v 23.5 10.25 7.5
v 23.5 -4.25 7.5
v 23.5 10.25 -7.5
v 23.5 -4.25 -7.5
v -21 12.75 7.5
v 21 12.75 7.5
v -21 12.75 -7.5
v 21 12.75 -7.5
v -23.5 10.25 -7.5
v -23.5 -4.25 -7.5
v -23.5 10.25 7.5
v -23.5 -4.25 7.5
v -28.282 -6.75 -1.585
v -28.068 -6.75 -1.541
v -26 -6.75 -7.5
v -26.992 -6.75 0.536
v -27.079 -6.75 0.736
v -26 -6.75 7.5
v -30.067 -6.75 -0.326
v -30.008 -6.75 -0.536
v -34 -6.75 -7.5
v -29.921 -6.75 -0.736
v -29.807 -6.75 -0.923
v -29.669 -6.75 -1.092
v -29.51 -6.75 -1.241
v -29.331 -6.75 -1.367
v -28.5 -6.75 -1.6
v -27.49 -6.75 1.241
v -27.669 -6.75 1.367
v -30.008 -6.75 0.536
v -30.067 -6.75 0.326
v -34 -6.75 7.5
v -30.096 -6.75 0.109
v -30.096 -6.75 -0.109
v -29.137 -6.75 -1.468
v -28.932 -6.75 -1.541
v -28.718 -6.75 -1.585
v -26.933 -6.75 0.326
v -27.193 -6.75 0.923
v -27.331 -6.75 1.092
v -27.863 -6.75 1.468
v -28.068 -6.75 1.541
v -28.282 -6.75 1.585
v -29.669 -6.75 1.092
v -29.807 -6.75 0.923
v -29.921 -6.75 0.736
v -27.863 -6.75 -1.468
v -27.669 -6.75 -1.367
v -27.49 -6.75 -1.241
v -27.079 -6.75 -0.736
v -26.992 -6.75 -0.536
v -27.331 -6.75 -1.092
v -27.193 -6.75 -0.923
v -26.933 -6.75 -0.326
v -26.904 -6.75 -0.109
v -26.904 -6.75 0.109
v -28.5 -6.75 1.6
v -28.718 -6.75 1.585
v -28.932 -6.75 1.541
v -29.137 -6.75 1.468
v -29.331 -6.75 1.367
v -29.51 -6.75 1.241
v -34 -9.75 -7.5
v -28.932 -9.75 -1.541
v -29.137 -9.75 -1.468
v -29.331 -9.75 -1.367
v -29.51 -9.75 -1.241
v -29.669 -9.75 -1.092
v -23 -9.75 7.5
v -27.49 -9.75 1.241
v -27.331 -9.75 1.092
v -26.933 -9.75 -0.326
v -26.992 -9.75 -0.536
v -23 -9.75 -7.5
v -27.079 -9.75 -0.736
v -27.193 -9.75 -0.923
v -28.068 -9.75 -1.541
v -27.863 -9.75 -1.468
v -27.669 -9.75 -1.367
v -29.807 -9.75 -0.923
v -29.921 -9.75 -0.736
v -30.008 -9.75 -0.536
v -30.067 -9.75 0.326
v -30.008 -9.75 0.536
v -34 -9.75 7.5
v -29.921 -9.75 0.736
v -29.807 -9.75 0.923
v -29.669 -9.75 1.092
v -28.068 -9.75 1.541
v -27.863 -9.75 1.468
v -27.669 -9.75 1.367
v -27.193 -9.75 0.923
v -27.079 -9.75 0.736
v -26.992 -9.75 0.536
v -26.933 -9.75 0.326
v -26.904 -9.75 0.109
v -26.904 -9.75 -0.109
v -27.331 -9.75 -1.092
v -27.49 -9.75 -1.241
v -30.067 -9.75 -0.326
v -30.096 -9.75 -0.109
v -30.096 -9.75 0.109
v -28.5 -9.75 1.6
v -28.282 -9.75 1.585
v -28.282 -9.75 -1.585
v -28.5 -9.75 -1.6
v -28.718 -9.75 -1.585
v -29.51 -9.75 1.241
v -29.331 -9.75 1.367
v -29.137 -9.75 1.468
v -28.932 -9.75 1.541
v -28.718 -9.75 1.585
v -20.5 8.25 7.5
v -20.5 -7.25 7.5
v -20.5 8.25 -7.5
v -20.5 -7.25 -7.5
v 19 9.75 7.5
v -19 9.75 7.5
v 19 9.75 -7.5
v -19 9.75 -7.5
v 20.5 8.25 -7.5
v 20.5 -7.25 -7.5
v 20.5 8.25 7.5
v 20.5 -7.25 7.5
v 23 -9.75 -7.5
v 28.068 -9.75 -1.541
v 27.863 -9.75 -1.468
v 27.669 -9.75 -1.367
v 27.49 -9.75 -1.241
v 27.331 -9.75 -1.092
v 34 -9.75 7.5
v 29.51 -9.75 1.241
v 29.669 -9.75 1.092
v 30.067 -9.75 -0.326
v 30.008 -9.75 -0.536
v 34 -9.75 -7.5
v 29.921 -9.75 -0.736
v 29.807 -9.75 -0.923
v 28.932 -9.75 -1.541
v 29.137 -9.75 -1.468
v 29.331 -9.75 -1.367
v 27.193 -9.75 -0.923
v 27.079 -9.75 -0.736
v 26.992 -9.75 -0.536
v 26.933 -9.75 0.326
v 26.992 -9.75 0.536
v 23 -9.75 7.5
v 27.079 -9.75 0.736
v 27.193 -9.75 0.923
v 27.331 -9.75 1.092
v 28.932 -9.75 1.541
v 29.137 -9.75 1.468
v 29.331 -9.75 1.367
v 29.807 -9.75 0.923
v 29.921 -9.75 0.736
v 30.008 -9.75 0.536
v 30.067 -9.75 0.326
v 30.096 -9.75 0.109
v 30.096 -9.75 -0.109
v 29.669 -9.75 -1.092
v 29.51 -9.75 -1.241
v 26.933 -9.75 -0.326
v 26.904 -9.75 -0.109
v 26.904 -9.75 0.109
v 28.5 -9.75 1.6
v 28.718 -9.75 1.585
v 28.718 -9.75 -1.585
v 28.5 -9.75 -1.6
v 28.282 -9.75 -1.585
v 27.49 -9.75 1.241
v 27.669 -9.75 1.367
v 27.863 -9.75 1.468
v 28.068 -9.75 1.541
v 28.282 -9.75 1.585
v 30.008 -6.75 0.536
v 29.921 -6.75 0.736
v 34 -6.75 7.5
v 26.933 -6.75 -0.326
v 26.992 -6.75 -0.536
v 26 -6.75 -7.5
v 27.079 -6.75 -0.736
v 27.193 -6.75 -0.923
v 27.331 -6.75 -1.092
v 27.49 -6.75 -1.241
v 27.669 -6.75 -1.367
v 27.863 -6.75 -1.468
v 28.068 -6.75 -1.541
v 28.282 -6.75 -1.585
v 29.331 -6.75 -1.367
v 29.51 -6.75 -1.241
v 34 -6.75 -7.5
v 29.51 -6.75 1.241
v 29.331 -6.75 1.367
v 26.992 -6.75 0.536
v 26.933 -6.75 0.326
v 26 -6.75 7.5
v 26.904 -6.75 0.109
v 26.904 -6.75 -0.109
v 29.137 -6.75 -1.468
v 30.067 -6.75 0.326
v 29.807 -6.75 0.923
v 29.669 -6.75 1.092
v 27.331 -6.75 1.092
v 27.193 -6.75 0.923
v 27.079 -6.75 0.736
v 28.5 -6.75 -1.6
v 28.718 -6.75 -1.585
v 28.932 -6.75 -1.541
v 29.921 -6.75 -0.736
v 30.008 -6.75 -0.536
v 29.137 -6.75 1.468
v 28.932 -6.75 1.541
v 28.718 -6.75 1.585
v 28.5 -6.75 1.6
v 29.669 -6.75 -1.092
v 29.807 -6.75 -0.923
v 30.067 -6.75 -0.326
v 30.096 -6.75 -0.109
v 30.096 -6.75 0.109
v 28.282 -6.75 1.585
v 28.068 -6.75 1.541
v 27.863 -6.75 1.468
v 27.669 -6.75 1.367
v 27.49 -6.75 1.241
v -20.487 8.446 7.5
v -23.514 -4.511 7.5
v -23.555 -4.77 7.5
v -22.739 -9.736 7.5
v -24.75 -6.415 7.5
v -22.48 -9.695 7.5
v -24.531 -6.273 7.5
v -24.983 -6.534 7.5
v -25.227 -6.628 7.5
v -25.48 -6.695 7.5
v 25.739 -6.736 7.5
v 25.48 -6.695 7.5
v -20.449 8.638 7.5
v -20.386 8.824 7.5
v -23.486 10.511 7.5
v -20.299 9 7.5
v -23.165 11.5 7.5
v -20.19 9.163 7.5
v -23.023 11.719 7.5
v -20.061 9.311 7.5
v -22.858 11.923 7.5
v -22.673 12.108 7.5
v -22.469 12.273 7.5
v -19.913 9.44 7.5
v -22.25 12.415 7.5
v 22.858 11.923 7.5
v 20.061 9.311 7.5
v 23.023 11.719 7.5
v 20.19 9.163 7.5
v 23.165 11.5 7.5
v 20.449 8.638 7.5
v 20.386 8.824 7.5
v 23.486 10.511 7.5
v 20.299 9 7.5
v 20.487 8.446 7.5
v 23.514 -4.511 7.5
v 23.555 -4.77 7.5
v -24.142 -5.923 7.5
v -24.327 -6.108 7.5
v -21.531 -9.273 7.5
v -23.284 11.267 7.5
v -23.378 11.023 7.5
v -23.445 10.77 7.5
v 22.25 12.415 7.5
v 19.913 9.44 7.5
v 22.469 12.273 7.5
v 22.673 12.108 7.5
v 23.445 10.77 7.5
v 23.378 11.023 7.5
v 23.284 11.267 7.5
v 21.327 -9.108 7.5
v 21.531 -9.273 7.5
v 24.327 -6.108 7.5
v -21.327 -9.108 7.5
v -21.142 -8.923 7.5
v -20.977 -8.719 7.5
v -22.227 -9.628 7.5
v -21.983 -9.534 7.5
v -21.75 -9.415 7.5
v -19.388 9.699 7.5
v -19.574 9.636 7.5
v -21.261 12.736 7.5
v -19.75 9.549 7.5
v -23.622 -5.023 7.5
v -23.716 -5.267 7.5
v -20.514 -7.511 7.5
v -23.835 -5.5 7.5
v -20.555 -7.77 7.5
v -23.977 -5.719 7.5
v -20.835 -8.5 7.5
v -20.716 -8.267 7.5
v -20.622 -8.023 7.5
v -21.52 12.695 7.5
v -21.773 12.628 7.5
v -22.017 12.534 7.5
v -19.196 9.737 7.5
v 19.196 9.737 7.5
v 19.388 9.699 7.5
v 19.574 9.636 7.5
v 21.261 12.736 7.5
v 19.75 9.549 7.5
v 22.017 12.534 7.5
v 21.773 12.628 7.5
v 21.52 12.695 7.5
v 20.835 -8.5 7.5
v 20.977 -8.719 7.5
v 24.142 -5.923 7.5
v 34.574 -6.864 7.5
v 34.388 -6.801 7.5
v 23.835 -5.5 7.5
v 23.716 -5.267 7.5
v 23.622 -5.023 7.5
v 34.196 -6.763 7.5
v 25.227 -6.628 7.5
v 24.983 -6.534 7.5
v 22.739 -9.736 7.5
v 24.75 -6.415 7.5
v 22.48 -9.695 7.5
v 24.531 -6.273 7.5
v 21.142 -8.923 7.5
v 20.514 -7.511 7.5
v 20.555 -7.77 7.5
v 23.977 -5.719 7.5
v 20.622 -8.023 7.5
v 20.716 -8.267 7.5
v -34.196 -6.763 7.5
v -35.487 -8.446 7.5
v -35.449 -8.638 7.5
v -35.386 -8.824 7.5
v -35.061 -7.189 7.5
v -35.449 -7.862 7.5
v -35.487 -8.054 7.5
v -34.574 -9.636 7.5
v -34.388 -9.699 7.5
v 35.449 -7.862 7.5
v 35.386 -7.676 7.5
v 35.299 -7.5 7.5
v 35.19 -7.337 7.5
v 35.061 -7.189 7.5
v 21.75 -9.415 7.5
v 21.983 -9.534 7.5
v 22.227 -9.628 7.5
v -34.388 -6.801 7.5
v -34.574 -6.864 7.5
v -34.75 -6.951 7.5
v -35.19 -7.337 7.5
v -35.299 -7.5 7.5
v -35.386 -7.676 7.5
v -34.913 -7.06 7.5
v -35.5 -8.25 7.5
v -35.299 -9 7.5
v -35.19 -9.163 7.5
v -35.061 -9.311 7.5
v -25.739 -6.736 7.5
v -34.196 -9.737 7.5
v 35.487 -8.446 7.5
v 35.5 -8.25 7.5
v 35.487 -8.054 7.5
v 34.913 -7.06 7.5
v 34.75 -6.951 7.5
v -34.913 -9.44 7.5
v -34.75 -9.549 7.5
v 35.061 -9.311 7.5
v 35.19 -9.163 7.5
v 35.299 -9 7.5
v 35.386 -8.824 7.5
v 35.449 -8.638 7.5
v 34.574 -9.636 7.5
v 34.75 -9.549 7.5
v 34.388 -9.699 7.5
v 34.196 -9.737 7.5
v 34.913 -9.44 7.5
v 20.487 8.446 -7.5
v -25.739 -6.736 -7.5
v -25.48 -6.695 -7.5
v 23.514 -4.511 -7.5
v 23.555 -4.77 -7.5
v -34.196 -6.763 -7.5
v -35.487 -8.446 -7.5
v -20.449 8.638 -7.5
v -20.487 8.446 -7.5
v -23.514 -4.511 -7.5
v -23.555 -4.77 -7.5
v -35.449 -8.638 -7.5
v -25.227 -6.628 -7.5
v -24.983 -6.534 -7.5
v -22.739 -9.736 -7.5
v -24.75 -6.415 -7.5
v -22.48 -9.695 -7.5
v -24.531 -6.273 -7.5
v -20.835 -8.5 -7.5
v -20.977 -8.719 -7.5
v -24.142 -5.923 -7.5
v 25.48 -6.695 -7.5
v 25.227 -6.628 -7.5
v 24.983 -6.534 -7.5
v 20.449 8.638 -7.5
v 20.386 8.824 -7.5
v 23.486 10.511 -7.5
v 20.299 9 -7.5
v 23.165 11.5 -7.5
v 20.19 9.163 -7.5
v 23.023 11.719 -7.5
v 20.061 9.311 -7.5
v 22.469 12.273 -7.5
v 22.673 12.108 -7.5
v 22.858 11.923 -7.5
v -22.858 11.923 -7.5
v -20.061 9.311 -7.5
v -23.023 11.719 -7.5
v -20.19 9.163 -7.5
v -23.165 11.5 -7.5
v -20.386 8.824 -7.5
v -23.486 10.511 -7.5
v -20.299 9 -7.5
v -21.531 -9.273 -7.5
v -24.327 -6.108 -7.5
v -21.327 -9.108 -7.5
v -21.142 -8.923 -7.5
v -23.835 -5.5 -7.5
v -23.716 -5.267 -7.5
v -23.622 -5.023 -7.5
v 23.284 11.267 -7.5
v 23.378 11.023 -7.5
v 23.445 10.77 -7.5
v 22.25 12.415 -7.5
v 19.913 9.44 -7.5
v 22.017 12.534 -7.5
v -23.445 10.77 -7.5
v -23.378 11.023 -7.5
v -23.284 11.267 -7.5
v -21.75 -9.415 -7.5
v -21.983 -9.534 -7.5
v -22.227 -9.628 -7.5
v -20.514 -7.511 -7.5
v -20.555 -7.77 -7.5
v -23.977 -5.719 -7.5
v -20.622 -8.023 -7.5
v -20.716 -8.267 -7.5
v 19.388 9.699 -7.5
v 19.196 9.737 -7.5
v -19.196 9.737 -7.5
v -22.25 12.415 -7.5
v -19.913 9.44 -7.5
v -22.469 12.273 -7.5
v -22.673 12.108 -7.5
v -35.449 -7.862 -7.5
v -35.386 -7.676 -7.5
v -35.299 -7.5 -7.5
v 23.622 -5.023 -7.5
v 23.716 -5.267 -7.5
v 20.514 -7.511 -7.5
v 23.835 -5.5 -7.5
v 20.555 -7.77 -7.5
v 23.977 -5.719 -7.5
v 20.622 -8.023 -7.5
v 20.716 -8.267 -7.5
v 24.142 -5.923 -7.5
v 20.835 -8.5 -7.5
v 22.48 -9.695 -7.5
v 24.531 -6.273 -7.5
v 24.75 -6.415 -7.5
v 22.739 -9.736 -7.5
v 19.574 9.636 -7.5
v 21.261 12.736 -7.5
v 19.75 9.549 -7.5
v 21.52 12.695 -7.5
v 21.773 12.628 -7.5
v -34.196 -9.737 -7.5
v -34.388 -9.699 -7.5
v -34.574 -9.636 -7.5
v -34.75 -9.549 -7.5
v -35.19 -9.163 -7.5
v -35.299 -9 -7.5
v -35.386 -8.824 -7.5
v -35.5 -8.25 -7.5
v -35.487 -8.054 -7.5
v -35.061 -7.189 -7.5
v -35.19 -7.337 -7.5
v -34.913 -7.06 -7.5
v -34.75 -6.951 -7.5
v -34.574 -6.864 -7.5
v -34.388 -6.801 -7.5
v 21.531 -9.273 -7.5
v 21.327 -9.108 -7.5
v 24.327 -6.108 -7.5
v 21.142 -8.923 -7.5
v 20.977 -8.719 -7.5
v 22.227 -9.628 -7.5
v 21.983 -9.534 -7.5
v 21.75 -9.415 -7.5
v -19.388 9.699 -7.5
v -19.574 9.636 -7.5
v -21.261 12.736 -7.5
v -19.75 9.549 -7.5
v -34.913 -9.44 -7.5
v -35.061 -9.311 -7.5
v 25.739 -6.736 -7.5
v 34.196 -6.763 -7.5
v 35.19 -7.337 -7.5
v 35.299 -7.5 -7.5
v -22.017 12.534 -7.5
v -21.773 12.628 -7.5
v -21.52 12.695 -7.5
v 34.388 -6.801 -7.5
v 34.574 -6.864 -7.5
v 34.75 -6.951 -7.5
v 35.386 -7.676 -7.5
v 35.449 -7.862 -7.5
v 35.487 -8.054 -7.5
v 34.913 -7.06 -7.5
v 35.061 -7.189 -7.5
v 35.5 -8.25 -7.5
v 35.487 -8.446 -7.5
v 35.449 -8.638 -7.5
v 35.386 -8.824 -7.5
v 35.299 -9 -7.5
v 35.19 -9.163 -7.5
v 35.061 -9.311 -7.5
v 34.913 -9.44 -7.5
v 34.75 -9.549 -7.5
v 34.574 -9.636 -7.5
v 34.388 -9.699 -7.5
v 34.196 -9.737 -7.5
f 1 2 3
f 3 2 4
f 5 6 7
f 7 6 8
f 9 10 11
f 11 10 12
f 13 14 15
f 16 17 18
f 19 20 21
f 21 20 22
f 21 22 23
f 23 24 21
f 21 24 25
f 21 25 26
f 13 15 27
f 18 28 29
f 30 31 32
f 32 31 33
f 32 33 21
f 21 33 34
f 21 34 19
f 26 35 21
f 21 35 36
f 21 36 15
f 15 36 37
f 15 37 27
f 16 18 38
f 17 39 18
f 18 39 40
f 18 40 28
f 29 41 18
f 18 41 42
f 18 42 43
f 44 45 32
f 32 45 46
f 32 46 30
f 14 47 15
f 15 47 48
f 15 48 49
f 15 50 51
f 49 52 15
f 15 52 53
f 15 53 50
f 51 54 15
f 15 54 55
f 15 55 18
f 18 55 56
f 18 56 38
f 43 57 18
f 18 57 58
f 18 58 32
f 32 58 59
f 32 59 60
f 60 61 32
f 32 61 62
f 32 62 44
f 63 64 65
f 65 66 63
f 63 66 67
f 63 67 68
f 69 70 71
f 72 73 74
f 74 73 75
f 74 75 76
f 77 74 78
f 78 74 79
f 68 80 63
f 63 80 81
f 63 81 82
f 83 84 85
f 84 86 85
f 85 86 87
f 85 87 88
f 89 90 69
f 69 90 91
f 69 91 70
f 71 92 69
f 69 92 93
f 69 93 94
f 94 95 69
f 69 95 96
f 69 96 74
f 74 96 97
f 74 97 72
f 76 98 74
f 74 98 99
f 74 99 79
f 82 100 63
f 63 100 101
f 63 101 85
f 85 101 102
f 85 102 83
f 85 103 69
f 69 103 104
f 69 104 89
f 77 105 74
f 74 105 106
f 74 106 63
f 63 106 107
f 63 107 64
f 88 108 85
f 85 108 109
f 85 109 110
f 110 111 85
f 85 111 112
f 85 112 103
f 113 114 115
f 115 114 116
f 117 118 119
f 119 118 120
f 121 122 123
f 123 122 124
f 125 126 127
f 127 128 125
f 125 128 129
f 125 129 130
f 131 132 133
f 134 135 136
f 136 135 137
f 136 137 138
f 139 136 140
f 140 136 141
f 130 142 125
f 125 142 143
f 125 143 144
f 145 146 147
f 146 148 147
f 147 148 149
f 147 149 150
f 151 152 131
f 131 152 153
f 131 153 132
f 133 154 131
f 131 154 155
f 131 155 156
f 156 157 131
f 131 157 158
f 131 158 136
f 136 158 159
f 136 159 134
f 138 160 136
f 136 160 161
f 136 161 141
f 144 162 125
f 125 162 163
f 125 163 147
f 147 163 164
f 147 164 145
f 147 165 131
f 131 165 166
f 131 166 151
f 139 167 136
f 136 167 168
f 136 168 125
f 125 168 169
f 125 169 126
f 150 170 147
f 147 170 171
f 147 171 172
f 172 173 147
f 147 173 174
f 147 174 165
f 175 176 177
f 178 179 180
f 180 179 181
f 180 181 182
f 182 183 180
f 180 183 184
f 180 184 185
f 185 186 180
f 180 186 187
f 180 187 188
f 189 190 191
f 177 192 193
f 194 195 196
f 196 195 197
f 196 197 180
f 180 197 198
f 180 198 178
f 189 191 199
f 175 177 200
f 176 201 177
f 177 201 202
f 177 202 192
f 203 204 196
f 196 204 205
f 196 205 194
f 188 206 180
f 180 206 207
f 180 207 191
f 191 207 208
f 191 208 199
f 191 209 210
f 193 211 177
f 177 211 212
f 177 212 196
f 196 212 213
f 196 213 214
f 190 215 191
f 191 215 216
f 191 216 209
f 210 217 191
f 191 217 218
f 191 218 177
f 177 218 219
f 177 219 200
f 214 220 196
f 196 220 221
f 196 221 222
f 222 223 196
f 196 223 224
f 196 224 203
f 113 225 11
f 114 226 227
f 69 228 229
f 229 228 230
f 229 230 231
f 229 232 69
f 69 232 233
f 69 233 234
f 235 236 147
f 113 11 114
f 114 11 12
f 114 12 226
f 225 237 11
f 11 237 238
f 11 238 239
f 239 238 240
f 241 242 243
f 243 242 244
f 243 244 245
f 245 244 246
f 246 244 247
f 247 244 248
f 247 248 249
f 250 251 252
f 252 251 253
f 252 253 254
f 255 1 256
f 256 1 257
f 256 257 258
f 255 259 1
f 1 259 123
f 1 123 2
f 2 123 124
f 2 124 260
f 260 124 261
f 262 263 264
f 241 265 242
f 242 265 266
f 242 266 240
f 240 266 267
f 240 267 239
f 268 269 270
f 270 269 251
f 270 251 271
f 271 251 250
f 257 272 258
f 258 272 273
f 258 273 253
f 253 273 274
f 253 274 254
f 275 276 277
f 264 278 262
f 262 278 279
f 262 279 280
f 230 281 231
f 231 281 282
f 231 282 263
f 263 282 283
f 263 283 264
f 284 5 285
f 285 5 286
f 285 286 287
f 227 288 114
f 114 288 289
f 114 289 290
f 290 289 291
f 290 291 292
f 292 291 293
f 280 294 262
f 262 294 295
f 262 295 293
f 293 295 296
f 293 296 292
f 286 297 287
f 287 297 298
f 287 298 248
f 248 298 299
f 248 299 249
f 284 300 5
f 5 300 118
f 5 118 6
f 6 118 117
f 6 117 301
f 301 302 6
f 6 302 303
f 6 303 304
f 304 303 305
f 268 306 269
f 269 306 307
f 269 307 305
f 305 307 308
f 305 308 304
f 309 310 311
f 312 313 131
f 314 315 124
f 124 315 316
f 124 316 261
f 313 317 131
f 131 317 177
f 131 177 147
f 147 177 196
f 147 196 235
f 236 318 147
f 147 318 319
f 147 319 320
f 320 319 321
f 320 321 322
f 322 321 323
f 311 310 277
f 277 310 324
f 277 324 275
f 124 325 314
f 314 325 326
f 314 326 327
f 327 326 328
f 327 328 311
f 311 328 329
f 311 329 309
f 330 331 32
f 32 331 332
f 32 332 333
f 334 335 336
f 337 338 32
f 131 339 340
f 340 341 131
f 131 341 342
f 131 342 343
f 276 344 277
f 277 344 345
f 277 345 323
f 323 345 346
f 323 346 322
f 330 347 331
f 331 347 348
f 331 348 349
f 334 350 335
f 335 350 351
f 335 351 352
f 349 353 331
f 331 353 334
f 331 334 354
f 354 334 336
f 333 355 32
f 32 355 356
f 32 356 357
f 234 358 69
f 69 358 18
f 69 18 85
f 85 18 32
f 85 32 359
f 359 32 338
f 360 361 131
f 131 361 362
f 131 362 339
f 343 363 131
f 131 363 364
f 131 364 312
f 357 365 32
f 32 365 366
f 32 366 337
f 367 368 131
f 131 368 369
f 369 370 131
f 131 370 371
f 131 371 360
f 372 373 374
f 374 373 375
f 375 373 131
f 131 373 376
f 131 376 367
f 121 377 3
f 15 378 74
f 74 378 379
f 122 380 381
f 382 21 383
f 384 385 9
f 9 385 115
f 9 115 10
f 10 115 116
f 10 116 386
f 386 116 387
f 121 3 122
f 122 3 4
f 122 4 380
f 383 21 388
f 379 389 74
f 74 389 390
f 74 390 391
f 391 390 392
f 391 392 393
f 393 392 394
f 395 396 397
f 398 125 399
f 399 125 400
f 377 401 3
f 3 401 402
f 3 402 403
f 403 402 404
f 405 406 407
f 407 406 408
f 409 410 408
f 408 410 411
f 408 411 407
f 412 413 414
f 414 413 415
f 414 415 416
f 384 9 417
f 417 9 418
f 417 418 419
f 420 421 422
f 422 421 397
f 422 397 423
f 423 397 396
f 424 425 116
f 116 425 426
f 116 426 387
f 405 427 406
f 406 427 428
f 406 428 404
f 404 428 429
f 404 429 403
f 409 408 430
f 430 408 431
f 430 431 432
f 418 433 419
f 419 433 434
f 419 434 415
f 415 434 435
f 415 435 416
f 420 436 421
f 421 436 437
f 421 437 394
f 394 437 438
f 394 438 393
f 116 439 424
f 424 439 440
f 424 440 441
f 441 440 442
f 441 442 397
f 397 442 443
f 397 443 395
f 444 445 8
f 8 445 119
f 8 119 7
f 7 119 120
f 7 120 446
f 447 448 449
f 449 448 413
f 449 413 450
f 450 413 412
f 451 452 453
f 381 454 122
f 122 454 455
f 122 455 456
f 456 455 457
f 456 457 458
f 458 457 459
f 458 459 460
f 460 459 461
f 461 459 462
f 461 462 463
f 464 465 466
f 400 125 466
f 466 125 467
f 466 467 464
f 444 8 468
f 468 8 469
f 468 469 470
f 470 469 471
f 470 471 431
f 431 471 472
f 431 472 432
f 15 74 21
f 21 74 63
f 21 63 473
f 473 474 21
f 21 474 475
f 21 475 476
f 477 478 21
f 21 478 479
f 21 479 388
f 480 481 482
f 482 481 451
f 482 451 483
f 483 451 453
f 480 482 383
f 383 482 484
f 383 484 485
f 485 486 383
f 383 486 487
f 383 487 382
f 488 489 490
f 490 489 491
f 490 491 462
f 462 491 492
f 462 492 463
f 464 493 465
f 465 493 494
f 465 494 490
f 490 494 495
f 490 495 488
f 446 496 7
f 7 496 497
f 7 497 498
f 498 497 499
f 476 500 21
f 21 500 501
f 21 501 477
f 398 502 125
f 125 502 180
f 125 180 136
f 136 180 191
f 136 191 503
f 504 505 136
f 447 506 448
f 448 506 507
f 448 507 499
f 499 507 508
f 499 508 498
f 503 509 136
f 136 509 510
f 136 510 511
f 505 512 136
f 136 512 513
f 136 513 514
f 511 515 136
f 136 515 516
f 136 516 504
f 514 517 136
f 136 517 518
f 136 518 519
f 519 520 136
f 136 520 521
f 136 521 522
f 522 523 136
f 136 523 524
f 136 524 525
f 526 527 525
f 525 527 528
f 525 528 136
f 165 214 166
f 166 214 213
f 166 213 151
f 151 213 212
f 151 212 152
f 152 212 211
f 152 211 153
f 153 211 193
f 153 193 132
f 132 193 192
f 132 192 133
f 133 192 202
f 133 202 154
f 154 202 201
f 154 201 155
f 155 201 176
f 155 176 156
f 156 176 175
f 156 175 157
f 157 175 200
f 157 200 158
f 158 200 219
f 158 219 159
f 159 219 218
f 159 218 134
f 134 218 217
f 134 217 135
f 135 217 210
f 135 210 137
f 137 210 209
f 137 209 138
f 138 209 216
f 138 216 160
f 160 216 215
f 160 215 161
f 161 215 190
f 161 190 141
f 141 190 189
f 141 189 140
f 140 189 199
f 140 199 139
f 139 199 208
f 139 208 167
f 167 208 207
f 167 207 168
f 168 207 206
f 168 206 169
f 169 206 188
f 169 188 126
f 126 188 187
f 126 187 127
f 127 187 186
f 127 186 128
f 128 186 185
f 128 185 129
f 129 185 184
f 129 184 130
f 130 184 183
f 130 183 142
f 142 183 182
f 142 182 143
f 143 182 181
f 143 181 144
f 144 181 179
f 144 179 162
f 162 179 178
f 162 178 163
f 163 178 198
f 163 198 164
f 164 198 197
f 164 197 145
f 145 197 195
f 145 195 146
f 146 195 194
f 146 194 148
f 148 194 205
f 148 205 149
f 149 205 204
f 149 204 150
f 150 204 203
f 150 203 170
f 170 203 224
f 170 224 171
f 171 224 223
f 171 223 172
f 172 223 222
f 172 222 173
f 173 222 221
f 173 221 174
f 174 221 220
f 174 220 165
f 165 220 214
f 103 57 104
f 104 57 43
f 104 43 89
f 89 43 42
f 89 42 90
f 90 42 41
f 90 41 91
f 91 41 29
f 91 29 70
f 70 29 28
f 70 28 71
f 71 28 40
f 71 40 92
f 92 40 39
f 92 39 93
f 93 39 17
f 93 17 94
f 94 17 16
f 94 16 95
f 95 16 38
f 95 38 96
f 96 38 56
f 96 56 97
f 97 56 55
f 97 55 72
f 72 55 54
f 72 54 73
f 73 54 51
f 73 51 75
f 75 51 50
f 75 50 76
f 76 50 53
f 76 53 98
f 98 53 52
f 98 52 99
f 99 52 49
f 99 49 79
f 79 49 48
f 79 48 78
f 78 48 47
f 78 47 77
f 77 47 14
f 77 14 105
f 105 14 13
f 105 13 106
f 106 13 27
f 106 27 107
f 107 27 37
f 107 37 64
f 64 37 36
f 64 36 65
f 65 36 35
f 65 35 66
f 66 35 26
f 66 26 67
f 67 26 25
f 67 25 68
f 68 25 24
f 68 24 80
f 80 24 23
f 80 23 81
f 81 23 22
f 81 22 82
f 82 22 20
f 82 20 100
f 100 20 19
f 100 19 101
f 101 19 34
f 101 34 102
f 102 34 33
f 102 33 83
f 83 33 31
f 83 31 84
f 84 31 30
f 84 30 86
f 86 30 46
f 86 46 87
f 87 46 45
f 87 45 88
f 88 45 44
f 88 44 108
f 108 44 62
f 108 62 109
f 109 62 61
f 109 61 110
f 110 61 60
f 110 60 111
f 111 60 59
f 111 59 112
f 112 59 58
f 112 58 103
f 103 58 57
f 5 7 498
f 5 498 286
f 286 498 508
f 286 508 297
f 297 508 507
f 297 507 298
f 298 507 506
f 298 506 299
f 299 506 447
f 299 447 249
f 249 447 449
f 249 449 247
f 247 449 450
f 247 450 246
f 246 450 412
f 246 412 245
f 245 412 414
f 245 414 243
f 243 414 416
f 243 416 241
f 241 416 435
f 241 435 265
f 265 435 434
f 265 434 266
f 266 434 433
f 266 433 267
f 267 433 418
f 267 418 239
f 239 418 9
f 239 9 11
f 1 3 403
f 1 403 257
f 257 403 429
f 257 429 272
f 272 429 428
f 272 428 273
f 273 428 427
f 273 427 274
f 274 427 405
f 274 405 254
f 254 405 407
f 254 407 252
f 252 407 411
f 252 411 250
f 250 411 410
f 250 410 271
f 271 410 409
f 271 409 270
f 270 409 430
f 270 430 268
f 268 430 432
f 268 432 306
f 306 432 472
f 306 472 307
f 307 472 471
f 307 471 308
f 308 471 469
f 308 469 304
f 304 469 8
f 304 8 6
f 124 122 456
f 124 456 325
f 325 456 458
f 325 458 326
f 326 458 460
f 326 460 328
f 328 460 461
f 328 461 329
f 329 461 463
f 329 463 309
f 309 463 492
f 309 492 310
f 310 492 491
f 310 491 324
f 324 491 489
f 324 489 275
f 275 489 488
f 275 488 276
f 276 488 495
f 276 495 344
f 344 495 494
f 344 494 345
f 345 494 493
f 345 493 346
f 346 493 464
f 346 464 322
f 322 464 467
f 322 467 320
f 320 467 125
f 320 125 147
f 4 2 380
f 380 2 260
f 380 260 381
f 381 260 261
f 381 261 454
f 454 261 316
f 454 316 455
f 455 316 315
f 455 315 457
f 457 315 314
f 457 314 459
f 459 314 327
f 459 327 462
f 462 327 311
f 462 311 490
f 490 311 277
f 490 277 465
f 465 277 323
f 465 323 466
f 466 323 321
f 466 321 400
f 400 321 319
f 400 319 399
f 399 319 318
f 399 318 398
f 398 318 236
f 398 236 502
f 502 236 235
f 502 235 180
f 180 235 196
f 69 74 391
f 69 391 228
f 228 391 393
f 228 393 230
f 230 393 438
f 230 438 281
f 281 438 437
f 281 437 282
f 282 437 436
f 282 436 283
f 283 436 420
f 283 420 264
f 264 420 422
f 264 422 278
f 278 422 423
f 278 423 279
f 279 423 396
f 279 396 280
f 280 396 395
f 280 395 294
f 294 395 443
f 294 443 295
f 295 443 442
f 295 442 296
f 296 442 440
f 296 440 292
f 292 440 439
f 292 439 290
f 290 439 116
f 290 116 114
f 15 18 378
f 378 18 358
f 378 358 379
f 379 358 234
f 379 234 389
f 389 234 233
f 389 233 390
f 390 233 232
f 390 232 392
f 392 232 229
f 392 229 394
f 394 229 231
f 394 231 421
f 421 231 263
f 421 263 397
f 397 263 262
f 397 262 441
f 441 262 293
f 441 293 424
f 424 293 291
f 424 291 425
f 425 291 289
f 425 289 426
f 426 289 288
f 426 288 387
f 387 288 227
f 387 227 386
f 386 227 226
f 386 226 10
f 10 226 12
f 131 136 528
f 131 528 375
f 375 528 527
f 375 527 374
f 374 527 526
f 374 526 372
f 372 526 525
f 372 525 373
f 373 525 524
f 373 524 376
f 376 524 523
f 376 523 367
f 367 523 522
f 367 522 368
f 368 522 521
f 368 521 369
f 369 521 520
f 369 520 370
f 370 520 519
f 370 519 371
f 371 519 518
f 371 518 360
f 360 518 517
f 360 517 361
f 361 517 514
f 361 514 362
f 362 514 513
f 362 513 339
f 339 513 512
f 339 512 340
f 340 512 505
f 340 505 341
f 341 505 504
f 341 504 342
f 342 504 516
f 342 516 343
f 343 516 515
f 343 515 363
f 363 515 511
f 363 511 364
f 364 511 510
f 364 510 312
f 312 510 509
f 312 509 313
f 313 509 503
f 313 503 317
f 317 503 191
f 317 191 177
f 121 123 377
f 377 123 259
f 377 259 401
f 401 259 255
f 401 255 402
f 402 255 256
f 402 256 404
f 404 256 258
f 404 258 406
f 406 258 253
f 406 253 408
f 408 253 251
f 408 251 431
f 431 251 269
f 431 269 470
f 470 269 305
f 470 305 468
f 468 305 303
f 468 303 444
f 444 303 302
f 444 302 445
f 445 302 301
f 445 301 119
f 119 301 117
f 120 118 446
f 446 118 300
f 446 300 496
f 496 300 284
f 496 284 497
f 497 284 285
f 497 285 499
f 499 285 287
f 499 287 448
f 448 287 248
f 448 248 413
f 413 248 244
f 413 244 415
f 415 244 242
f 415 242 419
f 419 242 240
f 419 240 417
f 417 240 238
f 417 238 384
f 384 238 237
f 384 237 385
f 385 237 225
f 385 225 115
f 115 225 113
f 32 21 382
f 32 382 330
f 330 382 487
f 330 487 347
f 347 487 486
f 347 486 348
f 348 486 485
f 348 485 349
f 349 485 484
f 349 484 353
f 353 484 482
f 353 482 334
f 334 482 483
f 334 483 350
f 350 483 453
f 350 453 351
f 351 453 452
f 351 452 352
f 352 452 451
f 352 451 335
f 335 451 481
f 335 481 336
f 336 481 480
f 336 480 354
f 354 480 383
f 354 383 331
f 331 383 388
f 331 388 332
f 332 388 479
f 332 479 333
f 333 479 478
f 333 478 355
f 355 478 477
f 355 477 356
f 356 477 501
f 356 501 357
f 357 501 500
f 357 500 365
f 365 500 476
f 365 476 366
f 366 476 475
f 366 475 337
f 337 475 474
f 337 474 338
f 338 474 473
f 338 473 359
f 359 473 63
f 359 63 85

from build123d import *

# Parameters (mm, degrees)
BOSS_EXTRUDE1_DEPTH = 7.5
SKETCH2_R           = 1.6
CUT_EXTRUDE2_DEPTH  = 42.191625362
FILLET1_R           = 2.5
FILLET2_R           = 1.5


with BuildPart() as part:
    # Sketch1 → Boss-Extrude1 (new, symmetric)
    with BuildSketch(Plane.XY):
        Polygon((-23.5, 12.75), (23.5, 12.75), (23.5, -6.75), (35.5, -6.75), (35.5, -9.75), (20.5, -9.75), (20.5, 9.75), (-20.5, 9.75), (-20.5, -9.75), (-35.5, -9.75), (-35.5, -6.75), (-23.5, -6.75), align=None)
    extrude(amount=BOSS_EXTRUDE1_DEPTH, both=True)

    # Sketch2 → Cut-Extrude2 (cut, through all)
    with BuildSketch(Plane(origin=(0, -6.75, 0), x_dir=(1, 0, 0), z_dir=(0, 1, 0))):
        with Locations(Location((-28.5, 0, 0), (0, 0, 270))):
            Circle(SKETCH2_R)
        with Locations(Location((28.5, 0, 0), (0, 0, 270))):
            Circle(SKETCH2_R)
    extrude(amount=-CUT_EXTRUDE2_DEPTH, mode=Mode.SUBTRACT)

    # Fillet1
    fillet1_edges = [part.edges().sort_by_distance(p)[0] for p in [
        (23.5, -6.75, 0),
        (20.5, -9.75, 0),
        (-20.5, -9.75, 0),
        (-23.5, -6.75, 0),
        (-23.5, 12.75, 0),
        (23.5, 12.75, 0),
    ]]
    fillet(fillet1_edges, radius=FILLET1_R)

    # Fillet2
    fillet2_edges = [part.edges().sort_by_distance(p)[0] for p in [
        (35.5, -6.75, 0),
        (35.5, -9.75, 0),
        (20.5, 9.75, 0),
        (-20.5, 9.75, 0),
        (-35.5, -9.75, 0),
        (-35.5, -6.75, 0),
    ]]
    fillet(fillet2_edges, radius=FILLET2_R - 0.0001)  # a hair under: the kernel refuses the full size


solid = part.part
